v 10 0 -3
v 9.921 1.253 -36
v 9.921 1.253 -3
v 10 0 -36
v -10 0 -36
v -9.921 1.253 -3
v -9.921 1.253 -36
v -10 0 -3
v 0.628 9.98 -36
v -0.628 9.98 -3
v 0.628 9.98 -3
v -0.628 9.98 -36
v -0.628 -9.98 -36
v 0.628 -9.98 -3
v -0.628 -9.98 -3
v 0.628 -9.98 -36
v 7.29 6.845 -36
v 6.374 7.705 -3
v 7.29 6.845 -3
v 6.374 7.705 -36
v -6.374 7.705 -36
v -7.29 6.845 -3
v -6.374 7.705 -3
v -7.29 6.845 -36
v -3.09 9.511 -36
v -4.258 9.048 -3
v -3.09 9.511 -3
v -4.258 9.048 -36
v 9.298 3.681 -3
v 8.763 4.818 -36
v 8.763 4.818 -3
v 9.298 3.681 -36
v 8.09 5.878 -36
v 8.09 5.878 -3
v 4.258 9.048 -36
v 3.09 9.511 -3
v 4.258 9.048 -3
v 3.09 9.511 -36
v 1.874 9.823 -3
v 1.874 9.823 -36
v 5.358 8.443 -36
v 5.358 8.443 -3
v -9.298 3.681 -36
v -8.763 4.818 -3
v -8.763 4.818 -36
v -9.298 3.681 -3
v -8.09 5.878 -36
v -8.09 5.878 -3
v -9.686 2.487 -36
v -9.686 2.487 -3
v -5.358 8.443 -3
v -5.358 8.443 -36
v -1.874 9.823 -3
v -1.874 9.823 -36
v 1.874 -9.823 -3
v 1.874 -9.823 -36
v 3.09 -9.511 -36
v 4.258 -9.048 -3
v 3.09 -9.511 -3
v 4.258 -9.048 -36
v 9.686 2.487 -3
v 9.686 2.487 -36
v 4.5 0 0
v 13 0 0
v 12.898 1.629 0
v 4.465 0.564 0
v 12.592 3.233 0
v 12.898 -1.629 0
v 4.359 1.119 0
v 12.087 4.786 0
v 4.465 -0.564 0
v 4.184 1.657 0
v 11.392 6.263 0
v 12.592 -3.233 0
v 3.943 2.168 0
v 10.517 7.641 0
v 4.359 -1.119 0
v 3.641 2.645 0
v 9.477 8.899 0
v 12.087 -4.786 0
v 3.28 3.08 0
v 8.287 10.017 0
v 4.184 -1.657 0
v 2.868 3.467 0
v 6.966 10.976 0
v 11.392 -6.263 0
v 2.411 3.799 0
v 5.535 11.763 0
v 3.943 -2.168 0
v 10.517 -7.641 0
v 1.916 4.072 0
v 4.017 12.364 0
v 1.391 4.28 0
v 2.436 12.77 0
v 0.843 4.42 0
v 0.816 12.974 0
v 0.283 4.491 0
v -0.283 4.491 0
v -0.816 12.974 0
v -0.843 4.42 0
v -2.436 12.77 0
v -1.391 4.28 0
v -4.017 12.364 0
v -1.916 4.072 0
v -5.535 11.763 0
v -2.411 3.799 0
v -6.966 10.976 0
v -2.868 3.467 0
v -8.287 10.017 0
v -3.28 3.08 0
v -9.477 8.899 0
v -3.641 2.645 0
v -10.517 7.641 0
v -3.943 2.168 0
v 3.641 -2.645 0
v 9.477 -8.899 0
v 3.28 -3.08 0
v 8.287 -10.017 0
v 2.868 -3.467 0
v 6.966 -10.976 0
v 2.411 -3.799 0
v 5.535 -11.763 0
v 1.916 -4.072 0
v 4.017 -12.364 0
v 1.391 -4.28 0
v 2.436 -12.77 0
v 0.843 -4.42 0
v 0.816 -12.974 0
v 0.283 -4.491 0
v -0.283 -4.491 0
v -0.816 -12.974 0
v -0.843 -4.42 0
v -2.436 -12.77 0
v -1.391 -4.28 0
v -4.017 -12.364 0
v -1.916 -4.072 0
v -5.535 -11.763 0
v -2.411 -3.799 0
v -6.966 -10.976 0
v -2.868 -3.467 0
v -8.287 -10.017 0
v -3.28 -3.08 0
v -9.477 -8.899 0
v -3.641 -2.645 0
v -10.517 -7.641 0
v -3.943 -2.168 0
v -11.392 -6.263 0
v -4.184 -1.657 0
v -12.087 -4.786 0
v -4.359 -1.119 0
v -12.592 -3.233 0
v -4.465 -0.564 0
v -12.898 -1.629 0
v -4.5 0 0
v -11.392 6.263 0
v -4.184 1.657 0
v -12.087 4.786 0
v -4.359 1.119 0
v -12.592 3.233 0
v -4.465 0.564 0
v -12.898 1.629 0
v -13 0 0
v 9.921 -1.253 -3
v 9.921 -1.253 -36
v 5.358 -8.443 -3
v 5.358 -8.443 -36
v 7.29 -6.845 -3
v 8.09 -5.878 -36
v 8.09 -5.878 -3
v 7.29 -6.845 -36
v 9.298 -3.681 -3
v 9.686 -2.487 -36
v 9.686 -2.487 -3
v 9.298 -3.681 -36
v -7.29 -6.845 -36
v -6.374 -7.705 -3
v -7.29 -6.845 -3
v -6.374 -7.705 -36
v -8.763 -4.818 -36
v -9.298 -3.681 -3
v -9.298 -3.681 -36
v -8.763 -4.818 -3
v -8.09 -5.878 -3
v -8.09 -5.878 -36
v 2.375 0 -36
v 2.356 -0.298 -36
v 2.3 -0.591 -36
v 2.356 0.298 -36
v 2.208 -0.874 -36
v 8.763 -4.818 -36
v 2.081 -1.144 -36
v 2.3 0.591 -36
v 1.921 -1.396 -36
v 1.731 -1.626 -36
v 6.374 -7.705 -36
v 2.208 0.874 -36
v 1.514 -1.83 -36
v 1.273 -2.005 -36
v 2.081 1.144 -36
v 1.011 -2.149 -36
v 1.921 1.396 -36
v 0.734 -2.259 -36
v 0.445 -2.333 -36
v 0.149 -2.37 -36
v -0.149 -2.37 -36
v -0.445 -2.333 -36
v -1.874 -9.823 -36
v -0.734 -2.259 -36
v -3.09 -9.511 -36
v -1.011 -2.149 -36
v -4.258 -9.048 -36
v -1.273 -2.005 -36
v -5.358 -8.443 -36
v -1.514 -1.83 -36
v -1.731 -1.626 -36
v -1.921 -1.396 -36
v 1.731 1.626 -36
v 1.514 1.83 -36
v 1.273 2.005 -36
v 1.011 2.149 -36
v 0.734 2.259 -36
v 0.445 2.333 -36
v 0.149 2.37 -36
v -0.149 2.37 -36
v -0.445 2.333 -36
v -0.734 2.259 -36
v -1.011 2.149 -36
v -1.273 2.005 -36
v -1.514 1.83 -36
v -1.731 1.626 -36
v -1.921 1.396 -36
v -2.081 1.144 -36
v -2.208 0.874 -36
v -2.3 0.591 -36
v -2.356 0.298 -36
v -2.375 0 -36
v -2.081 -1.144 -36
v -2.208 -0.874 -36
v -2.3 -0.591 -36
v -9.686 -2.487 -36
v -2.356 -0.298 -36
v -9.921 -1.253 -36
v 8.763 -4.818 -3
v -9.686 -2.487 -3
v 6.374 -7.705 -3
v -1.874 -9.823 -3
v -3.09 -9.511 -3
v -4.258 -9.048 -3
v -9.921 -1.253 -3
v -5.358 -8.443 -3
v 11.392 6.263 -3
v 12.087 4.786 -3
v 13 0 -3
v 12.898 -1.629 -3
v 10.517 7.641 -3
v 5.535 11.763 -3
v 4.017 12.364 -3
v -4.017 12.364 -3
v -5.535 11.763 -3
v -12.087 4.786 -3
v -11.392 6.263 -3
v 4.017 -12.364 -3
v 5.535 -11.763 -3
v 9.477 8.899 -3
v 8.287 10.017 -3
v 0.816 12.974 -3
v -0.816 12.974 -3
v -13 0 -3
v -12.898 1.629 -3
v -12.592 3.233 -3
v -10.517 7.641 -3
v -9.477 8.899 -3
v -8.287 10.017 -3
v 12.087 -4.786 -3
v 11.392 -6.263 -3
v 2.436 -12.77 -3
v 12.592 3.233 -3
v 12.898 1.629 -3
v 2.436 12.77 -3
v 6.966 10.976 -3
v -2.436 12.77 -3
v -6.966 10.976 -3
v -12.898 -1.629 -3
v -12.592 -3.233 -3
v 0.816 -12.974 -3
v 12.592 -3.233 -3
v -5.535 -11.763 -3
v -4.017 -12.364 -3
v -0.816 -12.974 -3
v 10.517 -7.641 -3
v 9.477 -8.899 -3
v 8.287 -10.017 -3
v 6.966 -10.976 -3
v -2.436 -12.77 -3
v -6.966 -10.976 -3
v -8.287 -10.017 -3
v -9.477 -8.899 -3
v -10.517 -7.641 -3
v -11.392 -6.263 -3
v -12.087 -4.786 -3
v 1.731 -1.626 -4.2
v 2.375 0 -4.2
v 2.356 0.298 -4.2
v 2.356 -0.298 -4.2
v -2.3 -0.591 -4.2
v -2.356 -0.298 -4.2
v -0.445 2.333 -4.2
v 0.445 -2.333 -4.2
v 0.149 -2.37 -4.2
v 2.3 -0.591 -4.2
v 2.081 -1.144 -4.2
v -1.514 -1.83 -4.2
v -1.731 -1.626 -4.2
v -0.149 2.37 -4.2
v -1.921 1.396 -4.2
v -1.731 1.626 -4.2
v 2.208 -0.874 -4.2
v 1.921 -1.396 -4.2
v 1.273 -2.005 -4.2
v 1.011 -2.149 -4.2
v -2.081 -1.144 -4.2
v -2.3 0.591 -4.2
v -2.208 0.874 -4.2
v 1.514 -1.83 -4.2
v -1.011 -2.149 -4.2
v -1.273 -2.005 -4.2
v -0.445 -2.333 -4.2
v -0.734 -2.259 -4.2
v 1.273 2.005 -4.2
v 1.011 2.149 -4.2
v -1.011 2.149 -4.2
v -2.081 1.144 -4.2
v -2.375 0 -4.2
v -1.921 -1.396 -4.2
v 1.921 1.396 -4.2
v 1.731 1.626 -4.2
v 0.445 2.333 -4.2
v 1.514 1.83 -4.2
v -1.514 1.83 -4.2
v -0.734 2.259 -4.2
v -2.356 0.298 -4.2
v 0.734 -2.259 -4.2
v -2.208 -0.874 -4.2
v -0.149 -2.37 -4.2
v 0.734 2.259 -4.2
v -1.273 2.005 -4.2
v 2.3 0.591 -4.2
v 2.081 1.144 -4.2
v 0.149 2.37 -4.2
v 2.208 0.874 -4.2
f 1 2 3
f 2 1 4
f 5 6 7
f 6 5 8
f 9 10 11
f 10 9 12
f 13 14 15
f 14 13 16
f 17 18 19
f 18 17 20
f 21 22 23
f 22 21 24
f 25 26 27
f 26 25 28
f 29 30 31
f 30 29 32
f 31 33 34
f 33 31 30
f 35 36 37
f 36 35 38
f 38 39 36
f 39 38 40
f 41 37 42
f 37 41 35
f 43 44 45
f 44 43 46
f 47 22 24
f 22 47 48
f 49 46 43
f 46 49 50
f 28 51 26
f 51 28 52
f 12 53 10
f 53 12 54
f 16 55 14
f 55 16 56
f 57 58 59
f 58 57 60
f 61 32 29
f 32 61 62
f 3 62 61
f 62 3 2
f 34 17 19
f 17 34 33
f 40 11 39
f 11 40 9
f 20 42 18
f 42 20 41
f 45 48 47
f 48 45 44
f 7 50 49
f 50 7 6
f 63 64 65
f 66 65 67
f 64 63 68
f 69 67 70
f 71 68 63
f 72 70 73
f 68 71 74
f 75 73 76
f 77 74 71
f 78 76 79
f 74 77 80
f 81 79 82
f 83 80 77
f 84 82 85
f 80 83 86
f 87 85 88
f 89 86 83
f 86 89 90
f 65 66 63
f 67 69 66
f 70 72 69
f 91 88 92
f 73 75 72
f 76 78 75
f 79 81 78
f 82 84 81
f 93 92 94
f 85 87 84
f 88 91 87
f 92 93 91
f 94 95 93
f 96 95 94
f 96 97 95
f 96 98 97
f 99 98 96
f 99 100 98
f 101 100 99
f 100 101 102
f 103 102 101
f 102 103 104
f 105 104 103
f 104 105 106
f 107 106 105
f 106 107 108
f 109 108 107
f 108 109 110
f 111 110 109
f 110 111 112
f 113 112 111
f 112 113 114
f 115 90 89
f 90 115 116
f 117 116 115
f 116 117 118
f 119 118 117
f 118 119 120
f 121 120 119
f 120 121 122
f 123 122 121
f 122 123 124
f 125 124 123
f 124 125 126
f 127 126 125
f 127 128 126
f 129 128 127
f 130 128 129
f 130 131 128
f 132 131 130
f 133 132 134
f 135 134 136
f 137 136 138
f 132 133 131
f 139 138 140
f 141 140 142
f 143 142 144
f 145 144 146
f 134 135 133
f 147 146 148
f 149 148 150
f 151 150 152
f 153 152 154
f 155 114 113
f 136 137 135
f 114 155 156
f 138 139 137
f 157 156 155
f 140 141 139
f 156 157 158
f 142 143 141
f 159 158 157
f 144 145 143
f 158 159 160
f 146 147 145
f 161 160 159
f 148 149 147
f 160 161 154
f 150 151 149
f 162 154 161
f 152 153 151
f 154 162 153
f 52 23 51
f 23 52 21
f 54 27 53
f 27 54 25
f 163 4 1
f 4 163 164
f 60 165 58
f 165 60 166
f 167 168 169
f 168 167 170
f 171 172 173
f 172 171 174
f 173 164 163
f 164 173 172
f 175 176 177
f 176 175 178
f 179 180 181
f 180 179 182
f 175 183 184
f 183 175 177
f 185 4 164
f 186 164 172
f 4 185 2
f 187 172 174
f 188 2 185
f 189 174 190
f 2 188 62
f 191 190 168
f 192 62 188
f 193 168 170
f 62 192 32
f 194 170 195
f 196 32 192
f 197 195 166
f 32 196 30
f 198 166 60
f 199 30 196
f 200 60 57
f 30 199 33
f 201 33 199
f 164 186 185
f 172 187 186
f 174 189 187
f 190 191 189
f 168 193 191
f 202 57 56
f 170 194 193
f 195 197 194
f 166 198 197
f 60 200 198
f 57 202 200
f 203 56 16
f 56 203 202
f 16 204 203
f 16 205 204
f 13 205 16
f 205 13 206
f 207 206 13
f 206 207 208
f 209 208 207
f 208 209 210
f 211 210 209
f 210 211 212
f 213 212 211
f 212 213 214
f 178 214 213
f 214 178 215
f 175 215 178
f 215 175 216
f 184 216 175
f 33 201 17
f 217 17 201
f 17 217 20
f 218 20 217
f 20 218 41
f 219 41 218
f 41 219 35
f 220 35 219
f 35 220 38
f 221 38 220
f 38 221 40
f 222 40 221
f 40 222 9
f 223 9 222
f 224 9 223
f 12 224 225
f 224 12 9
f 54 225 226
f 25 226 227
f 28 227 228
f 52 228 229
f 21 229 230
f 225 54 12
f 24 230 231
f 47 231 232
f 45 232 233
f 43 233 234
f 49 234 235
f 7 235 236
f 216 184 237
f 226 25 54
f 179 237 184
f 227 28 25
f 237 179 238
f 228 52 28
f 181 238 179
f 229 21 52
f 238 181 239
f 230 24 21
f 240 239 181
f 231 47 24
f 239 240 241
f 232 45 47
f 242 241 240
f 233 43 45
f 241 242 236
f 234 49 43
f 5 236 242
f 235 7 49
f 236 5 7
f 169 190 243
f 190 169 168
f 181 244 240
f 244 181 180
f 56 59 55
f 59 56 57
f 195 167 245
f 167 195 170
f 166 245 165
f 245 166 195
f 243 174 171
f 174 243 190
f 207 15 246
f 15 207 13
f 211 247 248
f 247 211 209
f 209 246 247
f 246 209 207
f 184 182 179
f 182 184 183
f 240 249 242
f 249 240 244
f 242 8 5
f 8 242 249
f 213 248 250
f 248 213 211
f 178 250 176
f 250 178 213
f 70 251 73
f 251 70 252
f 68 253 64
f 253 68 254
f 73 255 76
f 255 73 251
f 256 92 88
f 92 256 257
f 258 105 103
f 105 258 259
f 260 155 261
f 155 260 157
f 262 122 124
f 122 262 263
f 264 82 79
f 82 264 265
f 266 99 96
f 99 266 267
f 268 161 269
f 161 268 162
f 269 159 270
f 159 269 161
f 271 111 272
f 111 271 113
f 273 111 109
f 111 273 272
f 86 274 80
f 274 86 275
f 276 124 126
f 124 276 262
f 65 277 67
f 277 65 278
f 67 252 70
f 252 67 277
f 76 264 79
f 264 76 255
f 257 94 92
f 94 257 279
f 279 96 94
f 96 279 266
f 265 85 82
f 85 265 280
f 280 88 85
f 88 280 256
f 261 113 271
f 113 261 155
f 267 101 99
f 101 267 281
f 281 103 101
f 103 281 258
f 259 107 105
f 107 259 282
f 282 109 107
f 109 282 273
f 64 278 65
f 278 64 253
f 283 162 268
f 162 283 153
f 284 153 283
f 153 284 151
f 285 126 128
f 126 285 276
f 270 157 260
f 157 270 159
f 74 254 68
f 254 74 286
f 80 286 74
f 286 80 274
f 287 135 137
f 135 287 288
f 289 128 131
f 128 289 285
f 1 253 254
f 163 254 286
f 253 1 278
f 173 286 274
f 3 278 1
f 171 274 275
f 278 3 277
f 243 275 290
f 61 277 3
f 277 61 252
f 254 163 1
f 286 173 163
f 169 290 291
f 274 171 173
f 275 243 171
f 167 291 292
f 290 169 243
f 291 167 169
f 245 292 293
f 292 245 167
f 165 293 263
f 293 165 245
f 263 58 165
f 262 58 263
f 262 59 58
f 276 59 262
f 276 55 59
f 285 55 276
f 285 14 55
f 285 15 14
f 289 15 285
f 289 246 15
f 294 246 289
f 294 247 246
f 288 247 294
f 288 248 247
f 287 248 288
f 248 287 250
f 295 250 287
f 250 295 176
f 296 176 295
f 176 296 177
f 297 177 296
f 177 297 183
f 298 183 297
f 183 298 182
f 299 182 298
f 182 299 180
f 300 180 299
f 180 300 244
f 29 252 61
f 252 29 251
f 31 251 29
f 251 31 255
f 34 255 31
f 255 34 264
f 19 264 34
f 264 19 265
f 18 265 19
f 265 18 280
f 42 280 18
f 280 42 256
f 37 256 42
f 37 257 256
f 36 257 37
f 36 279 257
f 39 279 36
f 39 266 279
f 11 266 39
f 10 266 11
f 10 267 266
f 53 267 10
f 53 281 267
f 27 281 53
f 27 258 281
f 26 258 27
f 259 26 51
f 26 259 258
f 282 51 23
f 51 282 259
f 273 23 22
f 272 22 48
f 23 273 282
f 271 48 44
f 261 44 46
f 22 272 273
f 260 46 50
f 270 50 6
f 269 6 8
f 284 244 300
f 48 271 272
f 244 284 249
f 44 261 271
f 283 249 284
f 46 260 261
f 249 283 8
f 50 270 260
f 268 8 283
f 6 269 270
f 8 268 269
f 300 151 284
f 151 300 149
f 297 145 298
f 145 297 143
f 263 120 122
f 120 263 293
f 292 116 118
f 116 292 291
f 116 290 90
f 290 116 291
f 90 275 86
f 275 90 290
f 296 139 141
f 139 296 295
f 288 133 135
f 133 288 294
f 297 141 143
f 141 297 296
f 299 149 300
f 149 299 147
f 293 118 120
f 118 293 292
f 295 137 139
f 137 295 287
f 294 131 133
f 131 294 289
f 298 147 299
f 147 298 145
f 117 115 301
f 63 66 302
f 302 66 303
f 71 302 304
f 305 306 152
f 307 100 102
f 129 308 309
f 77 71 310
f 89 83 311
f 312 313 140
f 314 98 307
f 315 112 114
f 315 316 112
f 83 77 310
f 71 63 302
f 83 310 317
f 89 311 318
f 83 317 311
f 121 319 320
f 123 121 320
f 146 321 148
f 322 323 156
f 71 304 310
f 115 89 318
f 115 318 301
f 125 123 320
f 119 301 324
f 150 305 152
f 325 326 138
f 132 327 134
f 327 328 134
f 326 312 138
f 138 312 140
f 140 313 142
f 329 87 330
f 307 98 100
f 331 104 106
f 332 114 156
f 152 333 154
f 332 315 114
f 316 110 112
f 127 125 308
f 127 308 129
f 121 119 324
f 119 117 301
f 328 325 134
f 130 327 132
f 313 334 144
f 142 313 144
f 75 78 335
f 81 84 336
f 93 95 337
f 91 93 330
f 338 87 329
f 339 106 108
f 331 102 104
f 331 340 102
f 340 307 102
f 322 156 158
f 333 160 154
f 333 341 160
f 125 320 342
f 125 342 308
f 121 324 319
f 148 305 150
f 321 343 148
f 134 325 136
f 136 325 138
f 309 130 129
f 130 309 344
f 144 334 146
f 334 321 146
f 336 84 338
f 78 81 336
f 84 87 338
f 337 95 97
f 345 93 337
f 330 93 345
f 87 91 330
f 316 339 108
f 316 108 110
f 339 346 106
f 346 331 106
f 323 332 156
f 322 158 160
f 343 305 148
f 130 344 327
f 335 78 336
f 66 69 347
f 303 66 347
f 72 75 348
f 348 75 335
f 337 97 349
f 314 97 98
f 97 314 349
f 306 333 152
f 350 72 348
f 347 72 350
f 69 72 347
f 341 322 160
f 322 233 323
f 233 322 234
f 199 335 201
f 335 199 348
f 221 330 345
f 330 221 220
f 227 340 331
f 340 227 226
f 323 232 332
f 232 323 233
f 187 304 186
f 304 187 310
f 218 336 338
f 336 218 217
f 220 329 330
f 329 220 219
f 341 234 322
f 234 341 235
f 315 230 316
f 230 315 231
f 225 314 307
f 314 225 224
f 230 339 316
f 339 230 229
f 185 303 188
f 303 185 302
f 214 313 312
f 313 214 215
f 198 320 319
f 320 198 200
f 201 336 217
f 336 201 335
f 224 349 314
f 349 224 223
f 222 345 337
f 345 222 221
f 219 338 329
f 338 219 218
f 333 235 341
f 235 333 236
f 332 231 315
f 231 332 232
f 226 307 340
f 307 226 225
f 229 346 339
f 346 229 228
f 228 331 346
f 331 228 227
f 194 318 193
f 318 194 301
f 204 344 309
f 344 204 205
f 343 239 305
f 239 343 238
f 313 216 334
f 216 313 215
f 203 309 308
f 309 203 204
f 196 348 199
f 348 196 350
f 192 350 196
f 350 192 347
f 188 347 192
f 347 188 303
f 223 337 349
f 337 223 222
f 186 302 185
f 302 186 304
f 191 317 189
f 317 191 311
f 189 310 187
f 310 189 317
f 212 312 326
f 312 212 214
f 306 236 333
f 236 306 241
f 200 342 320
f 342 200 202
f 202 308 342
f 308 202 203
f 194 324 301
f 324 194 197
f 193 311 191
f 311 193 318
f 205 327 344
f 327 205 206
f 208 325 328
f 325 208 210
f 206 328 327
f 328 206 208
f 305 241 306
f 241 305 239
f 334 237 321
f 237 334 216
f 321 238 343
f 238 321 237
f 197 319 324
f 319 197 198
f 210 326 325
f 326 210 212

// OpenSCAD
$fn = 50;


difference() {
	union() {
		translate(v = [0, 0, -36.0000000000]) {
			cylinder(h = 36, r = 10.0000000000);
		}
		translate(v = [0, 0, -3.0000000000]) {
			cylinder(h = 3, r = 13.0000000000);
		}
	}
	union() {
		translate(v = [0, 0, 0]) {
			rotate(a = [0, 0, 0]) {
				difference() {
					union() {
						#translate(v = [0, 0, -36.0000000000]) {
							cylinder(h = 36, r = 2.2500000000);
						}
						#translate(v = [0, 0, -4.2000000000]) {
							cylinder(h = 4.2000000000, r = 10.0000000000, r1 = 2.3750000000, r2 = 4.5000000000);
						}
						#translate(v = [0, 0, -36.0000000000]) {
							cylinder(h = 36, r = 2.3750000000);
						}
						#translate(v = [0, 0, -36.0000000000]) {
							cylinder(h = 36, r = 2.2500000000);
						}
					}
					union();
				}
			}
		}
	}
}
